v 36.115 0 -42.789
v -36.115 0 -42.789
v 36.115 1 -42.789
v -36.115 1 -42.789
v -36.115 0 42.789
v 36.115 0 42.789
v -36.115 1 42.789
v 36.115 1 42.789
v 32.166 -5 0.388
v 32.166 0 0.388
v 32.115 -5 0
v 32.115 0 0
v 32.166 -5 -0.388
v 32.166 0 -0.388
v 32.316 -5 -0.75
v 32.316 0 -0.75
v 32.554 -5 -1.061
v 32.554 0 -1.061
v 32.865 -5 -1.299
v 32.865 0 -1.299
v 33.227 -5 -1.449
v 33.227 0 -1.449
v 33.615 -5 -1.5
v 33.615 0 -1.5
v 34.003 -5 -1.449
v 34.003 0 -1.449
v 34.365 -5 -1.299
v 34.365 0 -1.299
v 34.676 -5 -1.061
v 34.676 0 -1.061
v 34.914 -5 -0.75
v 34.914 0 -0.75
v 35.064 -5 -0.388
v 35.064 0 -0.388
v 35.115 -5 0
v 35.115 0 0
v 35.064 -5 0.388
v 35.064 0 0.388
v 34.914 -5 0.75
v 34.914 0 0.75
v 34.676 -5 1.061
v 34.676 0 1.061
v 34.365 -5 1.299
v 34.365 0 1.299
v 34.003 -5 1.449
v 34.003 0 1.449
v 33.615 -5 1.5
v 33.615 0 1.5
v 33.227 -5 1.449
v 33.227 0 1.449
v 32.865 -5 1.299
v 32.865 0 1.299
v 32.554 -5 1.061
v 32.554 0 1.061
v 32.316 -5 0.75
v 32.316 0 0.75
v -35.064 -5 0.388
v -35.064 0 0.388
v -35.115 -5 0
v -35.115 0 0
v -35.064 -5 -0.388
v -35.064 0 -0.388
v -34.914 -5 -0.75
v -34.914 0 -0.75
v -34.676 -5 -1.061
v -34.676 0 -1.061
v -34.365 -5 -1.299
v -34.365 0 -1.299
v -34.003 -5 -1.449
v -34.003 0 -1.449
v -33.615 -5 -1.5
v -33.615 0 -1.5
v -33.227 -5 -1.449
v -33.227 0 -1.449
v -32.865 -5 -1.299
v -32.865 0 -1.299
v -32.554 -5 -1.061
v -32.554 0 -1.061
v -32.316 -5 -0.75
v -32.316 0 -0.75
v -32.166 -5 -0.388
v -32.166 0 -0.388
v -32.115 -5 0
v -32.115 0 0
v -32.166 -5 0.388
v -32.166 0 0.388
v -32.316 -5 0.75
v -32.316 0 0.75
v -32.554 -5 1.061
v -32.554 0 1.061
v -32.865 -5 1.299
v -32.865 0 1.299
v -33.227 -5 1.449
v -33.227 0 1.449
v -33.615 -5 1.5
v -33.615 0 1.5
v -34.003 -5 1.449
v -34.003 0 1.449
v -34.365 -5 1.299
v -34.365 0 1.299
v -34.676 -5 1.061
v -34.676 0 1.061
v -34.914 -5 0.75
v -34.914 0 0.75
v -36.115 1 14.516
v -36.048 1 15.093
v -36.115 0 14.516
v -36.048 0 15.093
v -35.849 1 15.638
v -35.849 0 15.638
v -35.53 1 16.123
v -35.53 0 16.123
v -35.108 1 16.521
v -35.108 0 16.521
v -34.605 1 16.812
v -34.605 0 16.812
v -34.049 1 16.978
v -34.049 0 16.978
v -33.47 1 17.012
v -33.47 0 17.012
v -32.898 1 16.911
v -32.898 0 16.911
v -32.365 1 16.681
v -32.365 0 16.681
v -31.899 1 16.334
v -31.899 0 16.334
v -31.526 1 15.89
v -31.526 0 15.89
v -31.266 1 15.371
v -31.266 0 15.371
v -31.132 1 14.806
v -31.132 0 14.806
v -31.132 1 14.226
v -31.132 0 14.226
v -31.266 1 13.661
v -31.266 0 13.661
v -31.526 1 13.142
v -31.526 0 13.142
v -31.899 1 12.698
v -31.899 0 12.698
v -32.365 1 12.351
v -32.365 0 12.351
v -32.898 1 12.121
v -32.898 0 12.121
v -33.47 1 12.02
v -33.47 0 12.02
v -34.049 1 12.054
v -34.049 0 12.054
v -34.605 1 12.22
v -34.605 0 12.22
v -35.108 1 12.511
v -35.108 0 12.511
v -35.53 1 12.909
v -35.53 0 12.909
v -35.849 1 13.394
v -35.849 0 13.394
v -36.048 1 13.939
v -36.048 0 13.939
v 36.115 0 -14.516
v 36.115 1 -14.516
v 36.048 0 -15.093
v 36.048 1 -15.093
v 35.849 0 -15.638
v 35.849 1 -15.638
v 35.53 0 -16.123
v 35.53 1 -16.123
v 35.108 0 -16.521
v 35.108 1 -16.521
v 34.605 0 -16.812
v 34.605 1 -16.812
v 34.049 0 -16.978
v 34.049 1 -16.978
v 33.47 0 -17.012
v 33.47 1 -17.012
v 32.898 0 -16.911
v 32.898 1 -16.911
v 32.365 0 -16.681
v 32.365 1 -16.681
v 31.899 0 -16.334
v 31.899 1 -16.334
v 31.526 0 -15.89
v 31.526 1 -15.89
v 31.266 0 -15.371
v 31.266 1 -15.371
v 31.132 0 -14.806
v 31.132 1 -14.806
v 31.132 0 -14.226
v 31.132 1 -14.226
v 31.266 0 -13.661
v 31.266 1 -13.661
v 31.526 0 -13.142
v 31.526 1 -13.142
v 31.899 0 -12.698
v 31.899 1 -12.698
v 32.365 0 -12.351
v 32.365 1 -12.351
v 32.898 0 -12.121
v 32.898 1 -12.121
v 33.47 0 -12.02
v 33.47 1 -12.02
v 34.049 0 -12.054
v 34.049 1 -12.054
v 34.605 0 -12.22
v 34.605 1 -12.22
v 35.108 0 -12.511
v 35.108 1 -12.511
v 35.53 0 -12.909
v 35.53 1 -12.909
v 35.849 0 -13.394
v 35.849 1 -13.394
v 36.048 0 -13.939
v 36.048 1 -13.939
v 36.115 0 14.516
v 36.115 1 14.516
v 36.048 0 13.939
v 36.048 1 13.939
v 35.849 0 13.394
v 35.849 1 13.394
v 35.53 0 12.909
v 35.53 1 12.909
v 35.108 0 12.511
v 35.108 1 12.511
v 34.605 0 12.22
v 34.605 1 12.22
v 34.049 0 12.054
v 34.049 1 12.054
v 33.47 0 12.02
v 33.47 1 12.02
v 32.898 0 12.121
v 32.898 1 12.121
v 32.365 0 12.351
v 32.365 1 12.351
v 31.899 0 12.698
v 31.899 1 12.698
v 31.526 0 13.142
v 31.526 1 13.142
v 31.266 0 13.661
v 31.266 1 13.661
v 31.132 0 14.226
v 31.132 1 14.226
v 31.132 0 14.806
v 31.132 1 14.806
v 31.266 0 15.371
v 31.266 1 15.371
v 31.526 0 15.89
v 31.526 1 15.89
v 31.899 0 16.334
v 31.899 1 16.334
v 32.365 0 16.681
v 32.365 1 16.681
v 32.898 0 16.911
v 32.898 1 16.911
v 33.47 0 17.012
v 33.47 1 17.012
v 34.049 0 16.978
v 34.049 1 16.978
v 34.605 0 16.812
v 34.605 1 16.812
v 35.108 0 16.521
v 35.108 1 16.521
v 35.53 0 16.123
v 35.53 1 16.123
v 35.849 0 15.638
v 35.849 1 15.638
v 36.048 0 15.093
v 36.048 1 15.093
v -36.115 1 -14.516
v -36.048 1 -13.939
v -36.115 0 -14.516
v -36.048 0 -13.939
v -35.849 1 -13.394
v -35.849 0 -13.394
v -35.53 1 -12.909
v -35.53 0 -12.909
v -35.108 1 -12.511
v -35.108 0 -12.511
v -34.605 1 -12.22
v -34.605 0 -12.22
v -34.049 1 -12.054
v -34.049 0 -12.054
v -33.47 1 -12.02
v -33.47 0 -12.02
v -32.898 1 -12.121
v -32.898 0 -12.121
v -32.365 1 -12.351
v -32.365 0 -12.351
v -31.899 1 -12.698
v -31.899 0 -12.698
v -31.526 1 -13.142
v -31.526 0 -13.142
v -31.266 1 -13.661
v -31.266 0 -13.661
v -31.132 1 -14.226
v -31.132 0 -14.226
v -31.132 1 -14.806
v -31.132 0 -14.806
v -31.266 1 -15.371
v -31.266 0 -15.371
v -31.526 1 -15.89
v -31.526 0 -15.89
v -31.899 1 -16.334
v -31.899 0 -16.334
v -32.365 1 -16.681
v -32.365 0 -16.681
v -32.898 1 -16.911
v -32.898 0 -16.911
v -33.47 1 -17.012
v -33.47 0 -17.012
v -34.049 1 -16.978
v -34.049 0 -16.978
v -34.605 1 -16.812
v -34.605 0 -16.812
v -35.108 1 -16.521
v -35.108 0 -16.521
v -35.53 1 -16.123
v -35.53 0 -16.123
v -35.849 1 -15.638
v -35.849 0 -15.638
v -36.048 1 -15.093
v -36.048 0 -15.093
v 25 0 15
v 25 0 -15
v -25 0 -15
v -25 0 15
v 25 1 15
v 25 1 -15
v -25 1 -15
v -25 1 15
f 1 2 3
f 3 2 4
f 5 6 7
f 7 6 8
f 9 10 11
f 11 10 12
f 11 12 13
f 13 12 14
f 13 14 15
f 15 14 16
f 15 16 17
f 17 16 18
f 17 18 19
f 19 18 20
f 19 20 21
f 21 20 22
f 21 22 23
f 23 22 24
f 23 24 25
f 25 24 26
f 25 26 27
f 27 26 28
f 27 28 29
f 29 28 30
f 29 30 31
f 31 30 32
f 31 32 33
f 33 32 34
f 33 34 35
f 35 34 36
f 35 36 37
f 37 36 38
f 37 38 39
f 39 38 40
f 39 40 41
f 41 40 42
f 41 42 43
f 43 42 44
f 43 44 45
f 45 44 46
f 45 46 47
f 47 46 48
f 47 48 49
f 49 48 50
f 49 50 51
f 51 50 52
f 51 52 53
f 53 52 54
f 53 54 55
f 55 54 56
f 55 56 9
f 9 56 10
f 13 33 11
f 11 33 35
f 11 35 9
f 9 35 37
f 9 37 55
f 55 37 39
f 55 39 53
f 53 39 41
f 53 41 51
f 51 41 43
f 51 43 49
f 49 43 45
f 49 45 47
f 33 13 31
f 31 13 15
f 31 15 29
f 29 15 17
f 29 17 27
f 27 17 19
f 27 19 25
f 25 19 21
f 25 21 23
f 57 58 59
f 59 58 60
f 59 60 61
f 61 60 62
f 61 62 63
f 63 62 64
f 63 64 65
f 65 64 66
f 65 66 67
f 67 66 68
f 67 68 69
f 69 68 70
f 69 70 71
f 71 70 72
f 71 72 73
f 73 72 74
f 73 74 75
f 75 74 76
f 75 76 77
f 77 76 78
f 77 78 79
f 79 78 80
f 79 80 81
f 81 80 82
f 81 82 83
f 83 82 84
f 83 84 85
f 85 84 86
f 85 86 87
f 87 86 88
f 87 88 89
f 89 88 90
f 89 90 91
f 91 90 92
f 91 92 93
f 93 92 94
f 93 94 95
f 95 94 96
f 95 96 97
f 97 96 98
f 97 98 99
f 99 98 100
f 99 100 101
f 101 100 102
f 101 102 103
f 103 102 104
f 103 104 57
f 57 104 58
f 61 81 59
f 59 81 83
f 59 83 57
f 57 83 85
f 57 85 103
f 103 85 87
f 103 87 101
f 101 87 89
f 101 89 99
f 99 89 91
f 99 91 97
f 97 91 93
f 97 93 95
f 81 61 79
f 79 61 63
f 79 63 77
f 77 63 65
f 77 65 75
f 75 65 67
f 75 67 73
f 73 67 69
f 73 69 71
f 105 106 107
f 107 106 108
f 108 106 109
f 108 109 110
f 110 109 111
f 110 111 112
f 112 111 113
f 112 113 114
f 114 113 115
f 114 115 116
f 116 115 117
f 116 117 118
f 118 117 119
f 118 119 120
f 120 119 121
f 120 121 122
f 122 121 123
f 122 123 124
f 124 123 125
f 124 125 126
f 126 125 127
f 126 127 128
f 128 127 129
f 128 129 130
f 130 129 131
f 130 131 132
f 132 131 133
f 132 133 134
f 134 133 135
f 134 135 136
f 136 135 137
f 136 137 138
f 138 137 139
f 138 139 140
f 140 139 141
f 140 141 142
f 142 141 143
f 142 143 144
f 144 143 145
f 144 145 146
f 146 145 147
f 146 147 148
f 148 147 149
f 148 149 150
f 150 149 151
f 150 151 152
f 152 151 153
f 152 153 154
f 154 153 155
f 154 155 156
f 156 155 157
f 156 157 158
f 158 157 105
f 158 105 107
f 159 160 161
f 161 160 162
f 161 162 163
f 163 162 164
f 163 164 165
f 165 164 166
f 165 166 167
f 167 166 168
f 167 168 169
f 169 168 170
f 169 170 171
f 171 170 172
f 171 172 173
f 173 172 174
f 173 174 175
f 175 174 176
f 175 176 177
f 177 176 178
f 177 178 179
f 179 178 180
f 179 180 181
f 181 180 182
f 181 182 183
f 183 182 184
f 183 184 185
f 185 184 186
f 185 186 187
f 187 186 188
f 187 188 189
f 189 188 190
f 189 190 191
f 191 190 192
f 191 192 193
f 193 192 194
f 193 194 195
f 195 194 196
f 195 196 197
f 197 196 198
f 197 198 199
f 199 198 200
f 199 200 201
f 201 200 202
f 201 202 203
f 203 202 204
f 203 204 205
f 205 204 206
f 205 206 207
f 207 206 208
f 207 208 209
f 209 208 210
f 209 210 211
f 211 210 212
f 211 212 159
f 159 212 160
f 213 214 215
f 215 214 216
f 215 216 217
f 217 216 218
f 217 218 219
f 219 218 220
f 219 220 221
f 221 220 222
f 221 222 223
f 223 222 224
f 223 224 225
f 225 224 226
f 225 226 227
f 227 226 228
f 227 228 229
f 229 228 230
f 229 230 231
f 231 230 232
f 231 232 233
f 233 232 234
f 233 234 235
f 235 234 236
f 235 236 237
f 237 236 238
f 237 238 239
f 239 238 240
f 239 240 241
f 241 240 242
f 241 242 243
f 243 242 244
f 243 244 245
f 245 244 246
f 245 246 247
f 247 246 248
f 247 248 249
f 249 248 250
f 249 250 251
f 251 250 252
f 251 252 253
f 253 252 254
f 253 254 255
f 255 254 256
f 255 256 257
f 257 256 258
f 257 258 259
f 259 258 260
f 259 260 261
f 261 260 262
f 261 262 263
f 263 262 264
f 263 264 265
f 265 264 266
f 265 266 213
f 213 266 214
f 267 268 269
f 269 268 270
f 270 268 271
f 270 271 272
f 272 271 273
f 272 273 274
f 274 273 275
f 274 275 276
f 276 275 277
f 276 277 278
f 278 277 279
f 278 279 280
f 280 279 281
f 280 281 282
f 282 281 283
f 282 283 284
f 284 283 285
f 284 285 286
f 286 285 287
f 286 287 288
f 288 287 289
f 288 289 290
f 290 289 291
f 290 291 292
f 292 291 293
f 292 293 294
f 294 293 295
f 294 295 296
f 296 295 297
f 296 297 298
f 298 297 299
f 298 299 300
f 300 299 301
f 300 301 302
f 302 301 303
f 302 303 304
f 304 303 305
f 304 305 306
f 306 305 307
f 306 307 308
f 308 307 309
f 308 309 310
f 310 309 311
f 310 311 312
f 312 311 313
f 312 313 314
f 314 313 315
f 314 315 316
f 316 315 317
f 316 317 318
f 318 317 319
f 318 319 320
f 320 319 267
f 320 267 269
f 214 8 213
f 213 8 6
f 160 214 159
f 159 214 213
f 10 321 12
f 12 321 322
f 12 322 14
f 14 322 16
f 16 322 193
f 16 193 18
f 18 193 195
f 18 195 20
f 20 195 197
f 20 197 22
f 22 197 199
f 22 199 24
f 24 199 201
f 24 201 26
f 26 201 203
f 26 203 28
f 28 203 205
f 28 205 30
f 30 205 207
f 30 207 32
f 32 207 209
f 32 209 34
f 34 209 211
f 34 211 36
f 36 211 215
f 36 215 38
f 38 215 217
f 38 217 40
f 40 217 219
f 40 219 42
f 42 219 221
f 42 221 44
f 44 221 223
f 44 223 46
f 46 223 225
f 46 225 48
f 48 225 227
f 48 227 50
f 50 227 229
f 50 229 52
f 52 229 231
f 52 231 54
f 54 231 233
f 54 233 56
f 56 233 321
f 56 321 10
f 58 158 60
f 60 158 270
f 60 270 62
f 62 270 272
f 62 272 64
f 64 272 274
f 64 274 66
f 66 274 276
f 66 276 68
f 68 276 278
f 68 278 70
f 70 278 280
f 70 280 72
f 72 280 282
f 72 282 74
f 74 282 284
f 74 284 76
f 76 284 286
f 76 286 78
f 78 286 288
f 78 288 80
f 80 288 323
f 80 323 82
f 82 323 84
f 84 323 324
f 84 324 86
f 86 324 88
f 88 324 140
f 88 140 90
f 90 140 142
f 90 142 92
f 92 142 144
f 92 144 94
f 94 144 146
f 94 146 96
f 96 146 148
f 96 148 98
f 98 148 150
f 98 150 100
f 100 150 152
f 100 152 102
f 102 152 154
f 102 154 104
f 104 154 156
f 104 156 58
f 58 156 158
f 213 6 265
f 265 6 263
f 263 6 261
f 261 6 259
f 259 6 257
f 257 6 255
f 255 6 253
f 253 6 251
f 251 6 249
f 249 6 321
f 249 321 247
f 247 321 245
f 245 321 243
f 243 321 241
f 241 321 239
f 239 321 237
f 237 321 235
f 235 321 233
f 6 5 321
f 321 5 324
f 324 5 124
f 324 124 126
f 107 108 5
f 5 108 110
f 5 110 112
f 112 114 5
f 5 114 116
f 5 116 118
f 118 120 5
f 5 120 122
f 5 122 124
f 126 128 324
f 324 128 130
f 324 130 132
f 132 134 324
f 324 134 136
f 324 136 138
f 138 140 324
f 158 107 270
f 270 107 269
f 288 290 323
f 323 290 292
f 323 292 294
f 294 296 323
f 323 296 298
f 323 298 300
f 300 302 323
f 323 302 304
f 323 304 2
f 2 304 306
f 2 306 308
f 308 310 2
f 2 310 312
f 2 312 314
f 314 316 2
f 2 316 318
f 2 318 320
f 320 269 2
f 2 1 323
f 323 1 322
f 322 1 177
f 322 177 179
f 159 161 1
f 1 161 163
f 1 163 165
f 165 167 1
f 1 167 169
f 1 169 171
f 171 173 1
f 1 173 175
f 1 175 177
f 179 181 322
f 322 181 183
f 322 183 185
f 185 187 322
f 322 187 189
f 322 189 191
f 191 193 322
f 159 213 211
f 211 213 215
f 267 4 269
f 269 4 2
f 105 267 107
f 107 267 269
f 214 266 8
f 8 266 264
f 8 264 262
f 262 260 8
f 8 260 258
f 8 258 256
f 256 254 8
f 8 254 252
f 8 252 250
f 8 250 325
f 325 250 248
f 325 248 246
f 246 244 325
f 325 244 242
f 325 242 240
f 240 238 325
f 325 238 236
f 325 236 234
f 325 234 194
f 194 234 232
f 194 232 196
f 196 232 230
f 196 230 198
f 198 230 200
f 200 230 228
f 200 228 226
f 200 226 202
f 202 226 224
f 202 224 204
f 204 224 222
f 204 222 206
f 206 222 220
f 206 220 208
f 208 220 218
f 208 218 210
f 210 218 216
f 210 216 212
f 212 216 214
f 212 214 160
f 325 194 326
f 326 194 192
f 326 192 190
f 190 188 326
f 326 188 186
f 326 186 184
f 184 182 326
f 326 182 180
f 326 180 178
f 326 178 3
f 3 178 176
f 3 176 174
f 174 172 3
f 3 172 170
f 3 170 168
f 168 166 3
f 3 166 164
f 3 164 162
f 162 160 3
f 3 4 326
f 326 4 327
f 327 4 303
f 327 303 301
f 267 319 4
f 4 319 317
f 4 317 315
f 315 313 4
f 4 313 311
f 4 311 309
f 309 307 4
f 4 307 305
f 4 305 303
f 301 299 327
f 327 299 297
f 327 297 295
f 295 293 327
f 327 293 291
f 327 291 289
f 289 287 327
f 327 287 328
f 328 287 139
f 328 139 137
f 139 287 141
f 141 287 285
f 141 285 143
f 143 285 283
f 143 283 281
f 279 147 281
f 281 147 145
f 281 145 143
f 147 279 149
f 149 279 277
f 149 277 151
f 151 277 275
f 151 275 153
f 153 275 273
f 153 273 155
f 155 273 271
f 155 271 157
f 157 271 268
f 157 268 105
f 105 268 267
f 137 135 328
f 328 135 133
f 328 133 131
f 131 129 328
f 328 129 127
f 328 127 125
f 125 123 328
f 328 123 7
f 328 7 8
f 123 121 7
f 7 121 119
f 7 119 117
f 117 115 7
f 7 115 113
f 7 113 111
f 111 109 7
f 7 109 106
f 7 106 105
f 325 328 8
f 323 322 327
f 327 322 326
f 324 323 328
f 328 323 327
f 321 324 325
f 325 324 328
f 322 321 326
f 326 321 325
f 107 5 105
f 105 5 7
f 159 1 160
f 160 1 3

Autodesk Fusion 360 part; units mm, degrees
sketch "Esquisse1" plane through (0, 0, 0) normal (0, 1, 0) x (1, 0, 0)
  line L0 (36.115, 26.289) -> (-36.115, 26.289)
  line L1 (-36.115, 26.289) -> (-36.115, -26.289)
  line L2 (-36.115, -26.289) -> (36.115, -26.289)
  line L3 (36.115, -26.289) -> (36.115, 26.289)
  line L4 (36.115, 26.289) -> (-36.115, -26.289) construction
  line L5 (-36.115, 26.289) -> (36.115, -26.289) construction
  line L6 (36.115, 0) -> (31.115, 0) construction
  circle A0 centre (33.615, 0) radius 1.5
  line L7 (33.615, 0) -> (33.615, -14.516) construction
  circle A1 centre (33.615, -14.516) radius 1.5
  circle A2 centre (33.615, 14.516) radius 1.5
  line L8 (0, 0) -> (0, -26.289) construction
  circle A3 centre (-33.615, -14.516) radius 1.5
  circle A4 centre (-33.615, 0) radius 1.5
  circle A5 centre (-33.615, 14.516) radius 1.5
  line L9 (25, 15) -> (-25, 15)
  line L10 (-25, 15) -> (-25, -15)
  line L11 (-25, -15) -> (25, -15)
  line L12 (25, -15) -> (25, 15)
  line L13 (25, 15) -> (-25, -15) construction
  line L14 (-25, 15) -> (25, -15) construction
  dimension "d1" = 72.23
  dimension "d2" = 52.578
  dimension "d5" = 5
  dimension "d6" = 3
  dimension "d7" = 14.516
  dimension "d8" = 3
  dimension "d9" = 50
  dimension "d10" = 30
extrude "Extrusion1" add sketch "Esquisse1" along normal blind 1 contours L0 L1 L2 L3 | A0 | A4
sketch "Sketch2" plane through (0, 1, 0) normal (0, 1, 0) x (-1, 0, 0)
  line L0 (-25, -15) -> (-25, 15)
  line L1 (-25, 15) -> (25, 15)
  line L2 (25, 15) -> (25, -15)
  line L3 (25, -15) -> (-25, -15)
  circle A0 centre (33.615, 14.516) radius 1.5
  circle A1 centre (33.615, -14.516) radius 1.5
  circle A2 centre (-33.615, -14.516) radius 1.5
  circle A3 centre (-33.615, 14.516) radius 1.5
  line L4 (-36.115, 26.289) -> (-36.115, -26.289)
  line L5 (-36.115, -26.289) -> (36.115, -26.289)
  line L6 (36.115, -26.289) -> (36.115, 26.289)
  line L7 (36.115, 26.289) -> (-36.115, 26.289)
  circle A4 centre (-33.615, 14.516) radius 2.5
  circle A5 centre (33.615, 14.516) radius 2.5
  circle A6 centre (33.615, -14.516) radius 2.5
  circle A7 centre (-33.615, -14.516) radius 2.5
  dimension "d13" = 5
  dimension "d14" = 5
  dimension "d15" = 5
  dimension "d16" = 5
extrude "Extrude3" cut sketch "Sketch2" against normal blind 1 contours A4 | A7 | A6 | A5
extrude "Extrude2" add sketch "Esquisse1" against normal blind 5 contours A0 | A4
extrude "Extrude4" add 1 faces at (-12.0383, 0.6667, 26.289) along direction (0, 0, 1) blind 16.5
extrude "Extrude5" add 1 faces at (12.0383, 0.6667, -26.289) along direction (0, 0, -1) blind 16.5
equation "d2 = 39.032 mm + ( 6.773 * 2 ) * 1 mm"
